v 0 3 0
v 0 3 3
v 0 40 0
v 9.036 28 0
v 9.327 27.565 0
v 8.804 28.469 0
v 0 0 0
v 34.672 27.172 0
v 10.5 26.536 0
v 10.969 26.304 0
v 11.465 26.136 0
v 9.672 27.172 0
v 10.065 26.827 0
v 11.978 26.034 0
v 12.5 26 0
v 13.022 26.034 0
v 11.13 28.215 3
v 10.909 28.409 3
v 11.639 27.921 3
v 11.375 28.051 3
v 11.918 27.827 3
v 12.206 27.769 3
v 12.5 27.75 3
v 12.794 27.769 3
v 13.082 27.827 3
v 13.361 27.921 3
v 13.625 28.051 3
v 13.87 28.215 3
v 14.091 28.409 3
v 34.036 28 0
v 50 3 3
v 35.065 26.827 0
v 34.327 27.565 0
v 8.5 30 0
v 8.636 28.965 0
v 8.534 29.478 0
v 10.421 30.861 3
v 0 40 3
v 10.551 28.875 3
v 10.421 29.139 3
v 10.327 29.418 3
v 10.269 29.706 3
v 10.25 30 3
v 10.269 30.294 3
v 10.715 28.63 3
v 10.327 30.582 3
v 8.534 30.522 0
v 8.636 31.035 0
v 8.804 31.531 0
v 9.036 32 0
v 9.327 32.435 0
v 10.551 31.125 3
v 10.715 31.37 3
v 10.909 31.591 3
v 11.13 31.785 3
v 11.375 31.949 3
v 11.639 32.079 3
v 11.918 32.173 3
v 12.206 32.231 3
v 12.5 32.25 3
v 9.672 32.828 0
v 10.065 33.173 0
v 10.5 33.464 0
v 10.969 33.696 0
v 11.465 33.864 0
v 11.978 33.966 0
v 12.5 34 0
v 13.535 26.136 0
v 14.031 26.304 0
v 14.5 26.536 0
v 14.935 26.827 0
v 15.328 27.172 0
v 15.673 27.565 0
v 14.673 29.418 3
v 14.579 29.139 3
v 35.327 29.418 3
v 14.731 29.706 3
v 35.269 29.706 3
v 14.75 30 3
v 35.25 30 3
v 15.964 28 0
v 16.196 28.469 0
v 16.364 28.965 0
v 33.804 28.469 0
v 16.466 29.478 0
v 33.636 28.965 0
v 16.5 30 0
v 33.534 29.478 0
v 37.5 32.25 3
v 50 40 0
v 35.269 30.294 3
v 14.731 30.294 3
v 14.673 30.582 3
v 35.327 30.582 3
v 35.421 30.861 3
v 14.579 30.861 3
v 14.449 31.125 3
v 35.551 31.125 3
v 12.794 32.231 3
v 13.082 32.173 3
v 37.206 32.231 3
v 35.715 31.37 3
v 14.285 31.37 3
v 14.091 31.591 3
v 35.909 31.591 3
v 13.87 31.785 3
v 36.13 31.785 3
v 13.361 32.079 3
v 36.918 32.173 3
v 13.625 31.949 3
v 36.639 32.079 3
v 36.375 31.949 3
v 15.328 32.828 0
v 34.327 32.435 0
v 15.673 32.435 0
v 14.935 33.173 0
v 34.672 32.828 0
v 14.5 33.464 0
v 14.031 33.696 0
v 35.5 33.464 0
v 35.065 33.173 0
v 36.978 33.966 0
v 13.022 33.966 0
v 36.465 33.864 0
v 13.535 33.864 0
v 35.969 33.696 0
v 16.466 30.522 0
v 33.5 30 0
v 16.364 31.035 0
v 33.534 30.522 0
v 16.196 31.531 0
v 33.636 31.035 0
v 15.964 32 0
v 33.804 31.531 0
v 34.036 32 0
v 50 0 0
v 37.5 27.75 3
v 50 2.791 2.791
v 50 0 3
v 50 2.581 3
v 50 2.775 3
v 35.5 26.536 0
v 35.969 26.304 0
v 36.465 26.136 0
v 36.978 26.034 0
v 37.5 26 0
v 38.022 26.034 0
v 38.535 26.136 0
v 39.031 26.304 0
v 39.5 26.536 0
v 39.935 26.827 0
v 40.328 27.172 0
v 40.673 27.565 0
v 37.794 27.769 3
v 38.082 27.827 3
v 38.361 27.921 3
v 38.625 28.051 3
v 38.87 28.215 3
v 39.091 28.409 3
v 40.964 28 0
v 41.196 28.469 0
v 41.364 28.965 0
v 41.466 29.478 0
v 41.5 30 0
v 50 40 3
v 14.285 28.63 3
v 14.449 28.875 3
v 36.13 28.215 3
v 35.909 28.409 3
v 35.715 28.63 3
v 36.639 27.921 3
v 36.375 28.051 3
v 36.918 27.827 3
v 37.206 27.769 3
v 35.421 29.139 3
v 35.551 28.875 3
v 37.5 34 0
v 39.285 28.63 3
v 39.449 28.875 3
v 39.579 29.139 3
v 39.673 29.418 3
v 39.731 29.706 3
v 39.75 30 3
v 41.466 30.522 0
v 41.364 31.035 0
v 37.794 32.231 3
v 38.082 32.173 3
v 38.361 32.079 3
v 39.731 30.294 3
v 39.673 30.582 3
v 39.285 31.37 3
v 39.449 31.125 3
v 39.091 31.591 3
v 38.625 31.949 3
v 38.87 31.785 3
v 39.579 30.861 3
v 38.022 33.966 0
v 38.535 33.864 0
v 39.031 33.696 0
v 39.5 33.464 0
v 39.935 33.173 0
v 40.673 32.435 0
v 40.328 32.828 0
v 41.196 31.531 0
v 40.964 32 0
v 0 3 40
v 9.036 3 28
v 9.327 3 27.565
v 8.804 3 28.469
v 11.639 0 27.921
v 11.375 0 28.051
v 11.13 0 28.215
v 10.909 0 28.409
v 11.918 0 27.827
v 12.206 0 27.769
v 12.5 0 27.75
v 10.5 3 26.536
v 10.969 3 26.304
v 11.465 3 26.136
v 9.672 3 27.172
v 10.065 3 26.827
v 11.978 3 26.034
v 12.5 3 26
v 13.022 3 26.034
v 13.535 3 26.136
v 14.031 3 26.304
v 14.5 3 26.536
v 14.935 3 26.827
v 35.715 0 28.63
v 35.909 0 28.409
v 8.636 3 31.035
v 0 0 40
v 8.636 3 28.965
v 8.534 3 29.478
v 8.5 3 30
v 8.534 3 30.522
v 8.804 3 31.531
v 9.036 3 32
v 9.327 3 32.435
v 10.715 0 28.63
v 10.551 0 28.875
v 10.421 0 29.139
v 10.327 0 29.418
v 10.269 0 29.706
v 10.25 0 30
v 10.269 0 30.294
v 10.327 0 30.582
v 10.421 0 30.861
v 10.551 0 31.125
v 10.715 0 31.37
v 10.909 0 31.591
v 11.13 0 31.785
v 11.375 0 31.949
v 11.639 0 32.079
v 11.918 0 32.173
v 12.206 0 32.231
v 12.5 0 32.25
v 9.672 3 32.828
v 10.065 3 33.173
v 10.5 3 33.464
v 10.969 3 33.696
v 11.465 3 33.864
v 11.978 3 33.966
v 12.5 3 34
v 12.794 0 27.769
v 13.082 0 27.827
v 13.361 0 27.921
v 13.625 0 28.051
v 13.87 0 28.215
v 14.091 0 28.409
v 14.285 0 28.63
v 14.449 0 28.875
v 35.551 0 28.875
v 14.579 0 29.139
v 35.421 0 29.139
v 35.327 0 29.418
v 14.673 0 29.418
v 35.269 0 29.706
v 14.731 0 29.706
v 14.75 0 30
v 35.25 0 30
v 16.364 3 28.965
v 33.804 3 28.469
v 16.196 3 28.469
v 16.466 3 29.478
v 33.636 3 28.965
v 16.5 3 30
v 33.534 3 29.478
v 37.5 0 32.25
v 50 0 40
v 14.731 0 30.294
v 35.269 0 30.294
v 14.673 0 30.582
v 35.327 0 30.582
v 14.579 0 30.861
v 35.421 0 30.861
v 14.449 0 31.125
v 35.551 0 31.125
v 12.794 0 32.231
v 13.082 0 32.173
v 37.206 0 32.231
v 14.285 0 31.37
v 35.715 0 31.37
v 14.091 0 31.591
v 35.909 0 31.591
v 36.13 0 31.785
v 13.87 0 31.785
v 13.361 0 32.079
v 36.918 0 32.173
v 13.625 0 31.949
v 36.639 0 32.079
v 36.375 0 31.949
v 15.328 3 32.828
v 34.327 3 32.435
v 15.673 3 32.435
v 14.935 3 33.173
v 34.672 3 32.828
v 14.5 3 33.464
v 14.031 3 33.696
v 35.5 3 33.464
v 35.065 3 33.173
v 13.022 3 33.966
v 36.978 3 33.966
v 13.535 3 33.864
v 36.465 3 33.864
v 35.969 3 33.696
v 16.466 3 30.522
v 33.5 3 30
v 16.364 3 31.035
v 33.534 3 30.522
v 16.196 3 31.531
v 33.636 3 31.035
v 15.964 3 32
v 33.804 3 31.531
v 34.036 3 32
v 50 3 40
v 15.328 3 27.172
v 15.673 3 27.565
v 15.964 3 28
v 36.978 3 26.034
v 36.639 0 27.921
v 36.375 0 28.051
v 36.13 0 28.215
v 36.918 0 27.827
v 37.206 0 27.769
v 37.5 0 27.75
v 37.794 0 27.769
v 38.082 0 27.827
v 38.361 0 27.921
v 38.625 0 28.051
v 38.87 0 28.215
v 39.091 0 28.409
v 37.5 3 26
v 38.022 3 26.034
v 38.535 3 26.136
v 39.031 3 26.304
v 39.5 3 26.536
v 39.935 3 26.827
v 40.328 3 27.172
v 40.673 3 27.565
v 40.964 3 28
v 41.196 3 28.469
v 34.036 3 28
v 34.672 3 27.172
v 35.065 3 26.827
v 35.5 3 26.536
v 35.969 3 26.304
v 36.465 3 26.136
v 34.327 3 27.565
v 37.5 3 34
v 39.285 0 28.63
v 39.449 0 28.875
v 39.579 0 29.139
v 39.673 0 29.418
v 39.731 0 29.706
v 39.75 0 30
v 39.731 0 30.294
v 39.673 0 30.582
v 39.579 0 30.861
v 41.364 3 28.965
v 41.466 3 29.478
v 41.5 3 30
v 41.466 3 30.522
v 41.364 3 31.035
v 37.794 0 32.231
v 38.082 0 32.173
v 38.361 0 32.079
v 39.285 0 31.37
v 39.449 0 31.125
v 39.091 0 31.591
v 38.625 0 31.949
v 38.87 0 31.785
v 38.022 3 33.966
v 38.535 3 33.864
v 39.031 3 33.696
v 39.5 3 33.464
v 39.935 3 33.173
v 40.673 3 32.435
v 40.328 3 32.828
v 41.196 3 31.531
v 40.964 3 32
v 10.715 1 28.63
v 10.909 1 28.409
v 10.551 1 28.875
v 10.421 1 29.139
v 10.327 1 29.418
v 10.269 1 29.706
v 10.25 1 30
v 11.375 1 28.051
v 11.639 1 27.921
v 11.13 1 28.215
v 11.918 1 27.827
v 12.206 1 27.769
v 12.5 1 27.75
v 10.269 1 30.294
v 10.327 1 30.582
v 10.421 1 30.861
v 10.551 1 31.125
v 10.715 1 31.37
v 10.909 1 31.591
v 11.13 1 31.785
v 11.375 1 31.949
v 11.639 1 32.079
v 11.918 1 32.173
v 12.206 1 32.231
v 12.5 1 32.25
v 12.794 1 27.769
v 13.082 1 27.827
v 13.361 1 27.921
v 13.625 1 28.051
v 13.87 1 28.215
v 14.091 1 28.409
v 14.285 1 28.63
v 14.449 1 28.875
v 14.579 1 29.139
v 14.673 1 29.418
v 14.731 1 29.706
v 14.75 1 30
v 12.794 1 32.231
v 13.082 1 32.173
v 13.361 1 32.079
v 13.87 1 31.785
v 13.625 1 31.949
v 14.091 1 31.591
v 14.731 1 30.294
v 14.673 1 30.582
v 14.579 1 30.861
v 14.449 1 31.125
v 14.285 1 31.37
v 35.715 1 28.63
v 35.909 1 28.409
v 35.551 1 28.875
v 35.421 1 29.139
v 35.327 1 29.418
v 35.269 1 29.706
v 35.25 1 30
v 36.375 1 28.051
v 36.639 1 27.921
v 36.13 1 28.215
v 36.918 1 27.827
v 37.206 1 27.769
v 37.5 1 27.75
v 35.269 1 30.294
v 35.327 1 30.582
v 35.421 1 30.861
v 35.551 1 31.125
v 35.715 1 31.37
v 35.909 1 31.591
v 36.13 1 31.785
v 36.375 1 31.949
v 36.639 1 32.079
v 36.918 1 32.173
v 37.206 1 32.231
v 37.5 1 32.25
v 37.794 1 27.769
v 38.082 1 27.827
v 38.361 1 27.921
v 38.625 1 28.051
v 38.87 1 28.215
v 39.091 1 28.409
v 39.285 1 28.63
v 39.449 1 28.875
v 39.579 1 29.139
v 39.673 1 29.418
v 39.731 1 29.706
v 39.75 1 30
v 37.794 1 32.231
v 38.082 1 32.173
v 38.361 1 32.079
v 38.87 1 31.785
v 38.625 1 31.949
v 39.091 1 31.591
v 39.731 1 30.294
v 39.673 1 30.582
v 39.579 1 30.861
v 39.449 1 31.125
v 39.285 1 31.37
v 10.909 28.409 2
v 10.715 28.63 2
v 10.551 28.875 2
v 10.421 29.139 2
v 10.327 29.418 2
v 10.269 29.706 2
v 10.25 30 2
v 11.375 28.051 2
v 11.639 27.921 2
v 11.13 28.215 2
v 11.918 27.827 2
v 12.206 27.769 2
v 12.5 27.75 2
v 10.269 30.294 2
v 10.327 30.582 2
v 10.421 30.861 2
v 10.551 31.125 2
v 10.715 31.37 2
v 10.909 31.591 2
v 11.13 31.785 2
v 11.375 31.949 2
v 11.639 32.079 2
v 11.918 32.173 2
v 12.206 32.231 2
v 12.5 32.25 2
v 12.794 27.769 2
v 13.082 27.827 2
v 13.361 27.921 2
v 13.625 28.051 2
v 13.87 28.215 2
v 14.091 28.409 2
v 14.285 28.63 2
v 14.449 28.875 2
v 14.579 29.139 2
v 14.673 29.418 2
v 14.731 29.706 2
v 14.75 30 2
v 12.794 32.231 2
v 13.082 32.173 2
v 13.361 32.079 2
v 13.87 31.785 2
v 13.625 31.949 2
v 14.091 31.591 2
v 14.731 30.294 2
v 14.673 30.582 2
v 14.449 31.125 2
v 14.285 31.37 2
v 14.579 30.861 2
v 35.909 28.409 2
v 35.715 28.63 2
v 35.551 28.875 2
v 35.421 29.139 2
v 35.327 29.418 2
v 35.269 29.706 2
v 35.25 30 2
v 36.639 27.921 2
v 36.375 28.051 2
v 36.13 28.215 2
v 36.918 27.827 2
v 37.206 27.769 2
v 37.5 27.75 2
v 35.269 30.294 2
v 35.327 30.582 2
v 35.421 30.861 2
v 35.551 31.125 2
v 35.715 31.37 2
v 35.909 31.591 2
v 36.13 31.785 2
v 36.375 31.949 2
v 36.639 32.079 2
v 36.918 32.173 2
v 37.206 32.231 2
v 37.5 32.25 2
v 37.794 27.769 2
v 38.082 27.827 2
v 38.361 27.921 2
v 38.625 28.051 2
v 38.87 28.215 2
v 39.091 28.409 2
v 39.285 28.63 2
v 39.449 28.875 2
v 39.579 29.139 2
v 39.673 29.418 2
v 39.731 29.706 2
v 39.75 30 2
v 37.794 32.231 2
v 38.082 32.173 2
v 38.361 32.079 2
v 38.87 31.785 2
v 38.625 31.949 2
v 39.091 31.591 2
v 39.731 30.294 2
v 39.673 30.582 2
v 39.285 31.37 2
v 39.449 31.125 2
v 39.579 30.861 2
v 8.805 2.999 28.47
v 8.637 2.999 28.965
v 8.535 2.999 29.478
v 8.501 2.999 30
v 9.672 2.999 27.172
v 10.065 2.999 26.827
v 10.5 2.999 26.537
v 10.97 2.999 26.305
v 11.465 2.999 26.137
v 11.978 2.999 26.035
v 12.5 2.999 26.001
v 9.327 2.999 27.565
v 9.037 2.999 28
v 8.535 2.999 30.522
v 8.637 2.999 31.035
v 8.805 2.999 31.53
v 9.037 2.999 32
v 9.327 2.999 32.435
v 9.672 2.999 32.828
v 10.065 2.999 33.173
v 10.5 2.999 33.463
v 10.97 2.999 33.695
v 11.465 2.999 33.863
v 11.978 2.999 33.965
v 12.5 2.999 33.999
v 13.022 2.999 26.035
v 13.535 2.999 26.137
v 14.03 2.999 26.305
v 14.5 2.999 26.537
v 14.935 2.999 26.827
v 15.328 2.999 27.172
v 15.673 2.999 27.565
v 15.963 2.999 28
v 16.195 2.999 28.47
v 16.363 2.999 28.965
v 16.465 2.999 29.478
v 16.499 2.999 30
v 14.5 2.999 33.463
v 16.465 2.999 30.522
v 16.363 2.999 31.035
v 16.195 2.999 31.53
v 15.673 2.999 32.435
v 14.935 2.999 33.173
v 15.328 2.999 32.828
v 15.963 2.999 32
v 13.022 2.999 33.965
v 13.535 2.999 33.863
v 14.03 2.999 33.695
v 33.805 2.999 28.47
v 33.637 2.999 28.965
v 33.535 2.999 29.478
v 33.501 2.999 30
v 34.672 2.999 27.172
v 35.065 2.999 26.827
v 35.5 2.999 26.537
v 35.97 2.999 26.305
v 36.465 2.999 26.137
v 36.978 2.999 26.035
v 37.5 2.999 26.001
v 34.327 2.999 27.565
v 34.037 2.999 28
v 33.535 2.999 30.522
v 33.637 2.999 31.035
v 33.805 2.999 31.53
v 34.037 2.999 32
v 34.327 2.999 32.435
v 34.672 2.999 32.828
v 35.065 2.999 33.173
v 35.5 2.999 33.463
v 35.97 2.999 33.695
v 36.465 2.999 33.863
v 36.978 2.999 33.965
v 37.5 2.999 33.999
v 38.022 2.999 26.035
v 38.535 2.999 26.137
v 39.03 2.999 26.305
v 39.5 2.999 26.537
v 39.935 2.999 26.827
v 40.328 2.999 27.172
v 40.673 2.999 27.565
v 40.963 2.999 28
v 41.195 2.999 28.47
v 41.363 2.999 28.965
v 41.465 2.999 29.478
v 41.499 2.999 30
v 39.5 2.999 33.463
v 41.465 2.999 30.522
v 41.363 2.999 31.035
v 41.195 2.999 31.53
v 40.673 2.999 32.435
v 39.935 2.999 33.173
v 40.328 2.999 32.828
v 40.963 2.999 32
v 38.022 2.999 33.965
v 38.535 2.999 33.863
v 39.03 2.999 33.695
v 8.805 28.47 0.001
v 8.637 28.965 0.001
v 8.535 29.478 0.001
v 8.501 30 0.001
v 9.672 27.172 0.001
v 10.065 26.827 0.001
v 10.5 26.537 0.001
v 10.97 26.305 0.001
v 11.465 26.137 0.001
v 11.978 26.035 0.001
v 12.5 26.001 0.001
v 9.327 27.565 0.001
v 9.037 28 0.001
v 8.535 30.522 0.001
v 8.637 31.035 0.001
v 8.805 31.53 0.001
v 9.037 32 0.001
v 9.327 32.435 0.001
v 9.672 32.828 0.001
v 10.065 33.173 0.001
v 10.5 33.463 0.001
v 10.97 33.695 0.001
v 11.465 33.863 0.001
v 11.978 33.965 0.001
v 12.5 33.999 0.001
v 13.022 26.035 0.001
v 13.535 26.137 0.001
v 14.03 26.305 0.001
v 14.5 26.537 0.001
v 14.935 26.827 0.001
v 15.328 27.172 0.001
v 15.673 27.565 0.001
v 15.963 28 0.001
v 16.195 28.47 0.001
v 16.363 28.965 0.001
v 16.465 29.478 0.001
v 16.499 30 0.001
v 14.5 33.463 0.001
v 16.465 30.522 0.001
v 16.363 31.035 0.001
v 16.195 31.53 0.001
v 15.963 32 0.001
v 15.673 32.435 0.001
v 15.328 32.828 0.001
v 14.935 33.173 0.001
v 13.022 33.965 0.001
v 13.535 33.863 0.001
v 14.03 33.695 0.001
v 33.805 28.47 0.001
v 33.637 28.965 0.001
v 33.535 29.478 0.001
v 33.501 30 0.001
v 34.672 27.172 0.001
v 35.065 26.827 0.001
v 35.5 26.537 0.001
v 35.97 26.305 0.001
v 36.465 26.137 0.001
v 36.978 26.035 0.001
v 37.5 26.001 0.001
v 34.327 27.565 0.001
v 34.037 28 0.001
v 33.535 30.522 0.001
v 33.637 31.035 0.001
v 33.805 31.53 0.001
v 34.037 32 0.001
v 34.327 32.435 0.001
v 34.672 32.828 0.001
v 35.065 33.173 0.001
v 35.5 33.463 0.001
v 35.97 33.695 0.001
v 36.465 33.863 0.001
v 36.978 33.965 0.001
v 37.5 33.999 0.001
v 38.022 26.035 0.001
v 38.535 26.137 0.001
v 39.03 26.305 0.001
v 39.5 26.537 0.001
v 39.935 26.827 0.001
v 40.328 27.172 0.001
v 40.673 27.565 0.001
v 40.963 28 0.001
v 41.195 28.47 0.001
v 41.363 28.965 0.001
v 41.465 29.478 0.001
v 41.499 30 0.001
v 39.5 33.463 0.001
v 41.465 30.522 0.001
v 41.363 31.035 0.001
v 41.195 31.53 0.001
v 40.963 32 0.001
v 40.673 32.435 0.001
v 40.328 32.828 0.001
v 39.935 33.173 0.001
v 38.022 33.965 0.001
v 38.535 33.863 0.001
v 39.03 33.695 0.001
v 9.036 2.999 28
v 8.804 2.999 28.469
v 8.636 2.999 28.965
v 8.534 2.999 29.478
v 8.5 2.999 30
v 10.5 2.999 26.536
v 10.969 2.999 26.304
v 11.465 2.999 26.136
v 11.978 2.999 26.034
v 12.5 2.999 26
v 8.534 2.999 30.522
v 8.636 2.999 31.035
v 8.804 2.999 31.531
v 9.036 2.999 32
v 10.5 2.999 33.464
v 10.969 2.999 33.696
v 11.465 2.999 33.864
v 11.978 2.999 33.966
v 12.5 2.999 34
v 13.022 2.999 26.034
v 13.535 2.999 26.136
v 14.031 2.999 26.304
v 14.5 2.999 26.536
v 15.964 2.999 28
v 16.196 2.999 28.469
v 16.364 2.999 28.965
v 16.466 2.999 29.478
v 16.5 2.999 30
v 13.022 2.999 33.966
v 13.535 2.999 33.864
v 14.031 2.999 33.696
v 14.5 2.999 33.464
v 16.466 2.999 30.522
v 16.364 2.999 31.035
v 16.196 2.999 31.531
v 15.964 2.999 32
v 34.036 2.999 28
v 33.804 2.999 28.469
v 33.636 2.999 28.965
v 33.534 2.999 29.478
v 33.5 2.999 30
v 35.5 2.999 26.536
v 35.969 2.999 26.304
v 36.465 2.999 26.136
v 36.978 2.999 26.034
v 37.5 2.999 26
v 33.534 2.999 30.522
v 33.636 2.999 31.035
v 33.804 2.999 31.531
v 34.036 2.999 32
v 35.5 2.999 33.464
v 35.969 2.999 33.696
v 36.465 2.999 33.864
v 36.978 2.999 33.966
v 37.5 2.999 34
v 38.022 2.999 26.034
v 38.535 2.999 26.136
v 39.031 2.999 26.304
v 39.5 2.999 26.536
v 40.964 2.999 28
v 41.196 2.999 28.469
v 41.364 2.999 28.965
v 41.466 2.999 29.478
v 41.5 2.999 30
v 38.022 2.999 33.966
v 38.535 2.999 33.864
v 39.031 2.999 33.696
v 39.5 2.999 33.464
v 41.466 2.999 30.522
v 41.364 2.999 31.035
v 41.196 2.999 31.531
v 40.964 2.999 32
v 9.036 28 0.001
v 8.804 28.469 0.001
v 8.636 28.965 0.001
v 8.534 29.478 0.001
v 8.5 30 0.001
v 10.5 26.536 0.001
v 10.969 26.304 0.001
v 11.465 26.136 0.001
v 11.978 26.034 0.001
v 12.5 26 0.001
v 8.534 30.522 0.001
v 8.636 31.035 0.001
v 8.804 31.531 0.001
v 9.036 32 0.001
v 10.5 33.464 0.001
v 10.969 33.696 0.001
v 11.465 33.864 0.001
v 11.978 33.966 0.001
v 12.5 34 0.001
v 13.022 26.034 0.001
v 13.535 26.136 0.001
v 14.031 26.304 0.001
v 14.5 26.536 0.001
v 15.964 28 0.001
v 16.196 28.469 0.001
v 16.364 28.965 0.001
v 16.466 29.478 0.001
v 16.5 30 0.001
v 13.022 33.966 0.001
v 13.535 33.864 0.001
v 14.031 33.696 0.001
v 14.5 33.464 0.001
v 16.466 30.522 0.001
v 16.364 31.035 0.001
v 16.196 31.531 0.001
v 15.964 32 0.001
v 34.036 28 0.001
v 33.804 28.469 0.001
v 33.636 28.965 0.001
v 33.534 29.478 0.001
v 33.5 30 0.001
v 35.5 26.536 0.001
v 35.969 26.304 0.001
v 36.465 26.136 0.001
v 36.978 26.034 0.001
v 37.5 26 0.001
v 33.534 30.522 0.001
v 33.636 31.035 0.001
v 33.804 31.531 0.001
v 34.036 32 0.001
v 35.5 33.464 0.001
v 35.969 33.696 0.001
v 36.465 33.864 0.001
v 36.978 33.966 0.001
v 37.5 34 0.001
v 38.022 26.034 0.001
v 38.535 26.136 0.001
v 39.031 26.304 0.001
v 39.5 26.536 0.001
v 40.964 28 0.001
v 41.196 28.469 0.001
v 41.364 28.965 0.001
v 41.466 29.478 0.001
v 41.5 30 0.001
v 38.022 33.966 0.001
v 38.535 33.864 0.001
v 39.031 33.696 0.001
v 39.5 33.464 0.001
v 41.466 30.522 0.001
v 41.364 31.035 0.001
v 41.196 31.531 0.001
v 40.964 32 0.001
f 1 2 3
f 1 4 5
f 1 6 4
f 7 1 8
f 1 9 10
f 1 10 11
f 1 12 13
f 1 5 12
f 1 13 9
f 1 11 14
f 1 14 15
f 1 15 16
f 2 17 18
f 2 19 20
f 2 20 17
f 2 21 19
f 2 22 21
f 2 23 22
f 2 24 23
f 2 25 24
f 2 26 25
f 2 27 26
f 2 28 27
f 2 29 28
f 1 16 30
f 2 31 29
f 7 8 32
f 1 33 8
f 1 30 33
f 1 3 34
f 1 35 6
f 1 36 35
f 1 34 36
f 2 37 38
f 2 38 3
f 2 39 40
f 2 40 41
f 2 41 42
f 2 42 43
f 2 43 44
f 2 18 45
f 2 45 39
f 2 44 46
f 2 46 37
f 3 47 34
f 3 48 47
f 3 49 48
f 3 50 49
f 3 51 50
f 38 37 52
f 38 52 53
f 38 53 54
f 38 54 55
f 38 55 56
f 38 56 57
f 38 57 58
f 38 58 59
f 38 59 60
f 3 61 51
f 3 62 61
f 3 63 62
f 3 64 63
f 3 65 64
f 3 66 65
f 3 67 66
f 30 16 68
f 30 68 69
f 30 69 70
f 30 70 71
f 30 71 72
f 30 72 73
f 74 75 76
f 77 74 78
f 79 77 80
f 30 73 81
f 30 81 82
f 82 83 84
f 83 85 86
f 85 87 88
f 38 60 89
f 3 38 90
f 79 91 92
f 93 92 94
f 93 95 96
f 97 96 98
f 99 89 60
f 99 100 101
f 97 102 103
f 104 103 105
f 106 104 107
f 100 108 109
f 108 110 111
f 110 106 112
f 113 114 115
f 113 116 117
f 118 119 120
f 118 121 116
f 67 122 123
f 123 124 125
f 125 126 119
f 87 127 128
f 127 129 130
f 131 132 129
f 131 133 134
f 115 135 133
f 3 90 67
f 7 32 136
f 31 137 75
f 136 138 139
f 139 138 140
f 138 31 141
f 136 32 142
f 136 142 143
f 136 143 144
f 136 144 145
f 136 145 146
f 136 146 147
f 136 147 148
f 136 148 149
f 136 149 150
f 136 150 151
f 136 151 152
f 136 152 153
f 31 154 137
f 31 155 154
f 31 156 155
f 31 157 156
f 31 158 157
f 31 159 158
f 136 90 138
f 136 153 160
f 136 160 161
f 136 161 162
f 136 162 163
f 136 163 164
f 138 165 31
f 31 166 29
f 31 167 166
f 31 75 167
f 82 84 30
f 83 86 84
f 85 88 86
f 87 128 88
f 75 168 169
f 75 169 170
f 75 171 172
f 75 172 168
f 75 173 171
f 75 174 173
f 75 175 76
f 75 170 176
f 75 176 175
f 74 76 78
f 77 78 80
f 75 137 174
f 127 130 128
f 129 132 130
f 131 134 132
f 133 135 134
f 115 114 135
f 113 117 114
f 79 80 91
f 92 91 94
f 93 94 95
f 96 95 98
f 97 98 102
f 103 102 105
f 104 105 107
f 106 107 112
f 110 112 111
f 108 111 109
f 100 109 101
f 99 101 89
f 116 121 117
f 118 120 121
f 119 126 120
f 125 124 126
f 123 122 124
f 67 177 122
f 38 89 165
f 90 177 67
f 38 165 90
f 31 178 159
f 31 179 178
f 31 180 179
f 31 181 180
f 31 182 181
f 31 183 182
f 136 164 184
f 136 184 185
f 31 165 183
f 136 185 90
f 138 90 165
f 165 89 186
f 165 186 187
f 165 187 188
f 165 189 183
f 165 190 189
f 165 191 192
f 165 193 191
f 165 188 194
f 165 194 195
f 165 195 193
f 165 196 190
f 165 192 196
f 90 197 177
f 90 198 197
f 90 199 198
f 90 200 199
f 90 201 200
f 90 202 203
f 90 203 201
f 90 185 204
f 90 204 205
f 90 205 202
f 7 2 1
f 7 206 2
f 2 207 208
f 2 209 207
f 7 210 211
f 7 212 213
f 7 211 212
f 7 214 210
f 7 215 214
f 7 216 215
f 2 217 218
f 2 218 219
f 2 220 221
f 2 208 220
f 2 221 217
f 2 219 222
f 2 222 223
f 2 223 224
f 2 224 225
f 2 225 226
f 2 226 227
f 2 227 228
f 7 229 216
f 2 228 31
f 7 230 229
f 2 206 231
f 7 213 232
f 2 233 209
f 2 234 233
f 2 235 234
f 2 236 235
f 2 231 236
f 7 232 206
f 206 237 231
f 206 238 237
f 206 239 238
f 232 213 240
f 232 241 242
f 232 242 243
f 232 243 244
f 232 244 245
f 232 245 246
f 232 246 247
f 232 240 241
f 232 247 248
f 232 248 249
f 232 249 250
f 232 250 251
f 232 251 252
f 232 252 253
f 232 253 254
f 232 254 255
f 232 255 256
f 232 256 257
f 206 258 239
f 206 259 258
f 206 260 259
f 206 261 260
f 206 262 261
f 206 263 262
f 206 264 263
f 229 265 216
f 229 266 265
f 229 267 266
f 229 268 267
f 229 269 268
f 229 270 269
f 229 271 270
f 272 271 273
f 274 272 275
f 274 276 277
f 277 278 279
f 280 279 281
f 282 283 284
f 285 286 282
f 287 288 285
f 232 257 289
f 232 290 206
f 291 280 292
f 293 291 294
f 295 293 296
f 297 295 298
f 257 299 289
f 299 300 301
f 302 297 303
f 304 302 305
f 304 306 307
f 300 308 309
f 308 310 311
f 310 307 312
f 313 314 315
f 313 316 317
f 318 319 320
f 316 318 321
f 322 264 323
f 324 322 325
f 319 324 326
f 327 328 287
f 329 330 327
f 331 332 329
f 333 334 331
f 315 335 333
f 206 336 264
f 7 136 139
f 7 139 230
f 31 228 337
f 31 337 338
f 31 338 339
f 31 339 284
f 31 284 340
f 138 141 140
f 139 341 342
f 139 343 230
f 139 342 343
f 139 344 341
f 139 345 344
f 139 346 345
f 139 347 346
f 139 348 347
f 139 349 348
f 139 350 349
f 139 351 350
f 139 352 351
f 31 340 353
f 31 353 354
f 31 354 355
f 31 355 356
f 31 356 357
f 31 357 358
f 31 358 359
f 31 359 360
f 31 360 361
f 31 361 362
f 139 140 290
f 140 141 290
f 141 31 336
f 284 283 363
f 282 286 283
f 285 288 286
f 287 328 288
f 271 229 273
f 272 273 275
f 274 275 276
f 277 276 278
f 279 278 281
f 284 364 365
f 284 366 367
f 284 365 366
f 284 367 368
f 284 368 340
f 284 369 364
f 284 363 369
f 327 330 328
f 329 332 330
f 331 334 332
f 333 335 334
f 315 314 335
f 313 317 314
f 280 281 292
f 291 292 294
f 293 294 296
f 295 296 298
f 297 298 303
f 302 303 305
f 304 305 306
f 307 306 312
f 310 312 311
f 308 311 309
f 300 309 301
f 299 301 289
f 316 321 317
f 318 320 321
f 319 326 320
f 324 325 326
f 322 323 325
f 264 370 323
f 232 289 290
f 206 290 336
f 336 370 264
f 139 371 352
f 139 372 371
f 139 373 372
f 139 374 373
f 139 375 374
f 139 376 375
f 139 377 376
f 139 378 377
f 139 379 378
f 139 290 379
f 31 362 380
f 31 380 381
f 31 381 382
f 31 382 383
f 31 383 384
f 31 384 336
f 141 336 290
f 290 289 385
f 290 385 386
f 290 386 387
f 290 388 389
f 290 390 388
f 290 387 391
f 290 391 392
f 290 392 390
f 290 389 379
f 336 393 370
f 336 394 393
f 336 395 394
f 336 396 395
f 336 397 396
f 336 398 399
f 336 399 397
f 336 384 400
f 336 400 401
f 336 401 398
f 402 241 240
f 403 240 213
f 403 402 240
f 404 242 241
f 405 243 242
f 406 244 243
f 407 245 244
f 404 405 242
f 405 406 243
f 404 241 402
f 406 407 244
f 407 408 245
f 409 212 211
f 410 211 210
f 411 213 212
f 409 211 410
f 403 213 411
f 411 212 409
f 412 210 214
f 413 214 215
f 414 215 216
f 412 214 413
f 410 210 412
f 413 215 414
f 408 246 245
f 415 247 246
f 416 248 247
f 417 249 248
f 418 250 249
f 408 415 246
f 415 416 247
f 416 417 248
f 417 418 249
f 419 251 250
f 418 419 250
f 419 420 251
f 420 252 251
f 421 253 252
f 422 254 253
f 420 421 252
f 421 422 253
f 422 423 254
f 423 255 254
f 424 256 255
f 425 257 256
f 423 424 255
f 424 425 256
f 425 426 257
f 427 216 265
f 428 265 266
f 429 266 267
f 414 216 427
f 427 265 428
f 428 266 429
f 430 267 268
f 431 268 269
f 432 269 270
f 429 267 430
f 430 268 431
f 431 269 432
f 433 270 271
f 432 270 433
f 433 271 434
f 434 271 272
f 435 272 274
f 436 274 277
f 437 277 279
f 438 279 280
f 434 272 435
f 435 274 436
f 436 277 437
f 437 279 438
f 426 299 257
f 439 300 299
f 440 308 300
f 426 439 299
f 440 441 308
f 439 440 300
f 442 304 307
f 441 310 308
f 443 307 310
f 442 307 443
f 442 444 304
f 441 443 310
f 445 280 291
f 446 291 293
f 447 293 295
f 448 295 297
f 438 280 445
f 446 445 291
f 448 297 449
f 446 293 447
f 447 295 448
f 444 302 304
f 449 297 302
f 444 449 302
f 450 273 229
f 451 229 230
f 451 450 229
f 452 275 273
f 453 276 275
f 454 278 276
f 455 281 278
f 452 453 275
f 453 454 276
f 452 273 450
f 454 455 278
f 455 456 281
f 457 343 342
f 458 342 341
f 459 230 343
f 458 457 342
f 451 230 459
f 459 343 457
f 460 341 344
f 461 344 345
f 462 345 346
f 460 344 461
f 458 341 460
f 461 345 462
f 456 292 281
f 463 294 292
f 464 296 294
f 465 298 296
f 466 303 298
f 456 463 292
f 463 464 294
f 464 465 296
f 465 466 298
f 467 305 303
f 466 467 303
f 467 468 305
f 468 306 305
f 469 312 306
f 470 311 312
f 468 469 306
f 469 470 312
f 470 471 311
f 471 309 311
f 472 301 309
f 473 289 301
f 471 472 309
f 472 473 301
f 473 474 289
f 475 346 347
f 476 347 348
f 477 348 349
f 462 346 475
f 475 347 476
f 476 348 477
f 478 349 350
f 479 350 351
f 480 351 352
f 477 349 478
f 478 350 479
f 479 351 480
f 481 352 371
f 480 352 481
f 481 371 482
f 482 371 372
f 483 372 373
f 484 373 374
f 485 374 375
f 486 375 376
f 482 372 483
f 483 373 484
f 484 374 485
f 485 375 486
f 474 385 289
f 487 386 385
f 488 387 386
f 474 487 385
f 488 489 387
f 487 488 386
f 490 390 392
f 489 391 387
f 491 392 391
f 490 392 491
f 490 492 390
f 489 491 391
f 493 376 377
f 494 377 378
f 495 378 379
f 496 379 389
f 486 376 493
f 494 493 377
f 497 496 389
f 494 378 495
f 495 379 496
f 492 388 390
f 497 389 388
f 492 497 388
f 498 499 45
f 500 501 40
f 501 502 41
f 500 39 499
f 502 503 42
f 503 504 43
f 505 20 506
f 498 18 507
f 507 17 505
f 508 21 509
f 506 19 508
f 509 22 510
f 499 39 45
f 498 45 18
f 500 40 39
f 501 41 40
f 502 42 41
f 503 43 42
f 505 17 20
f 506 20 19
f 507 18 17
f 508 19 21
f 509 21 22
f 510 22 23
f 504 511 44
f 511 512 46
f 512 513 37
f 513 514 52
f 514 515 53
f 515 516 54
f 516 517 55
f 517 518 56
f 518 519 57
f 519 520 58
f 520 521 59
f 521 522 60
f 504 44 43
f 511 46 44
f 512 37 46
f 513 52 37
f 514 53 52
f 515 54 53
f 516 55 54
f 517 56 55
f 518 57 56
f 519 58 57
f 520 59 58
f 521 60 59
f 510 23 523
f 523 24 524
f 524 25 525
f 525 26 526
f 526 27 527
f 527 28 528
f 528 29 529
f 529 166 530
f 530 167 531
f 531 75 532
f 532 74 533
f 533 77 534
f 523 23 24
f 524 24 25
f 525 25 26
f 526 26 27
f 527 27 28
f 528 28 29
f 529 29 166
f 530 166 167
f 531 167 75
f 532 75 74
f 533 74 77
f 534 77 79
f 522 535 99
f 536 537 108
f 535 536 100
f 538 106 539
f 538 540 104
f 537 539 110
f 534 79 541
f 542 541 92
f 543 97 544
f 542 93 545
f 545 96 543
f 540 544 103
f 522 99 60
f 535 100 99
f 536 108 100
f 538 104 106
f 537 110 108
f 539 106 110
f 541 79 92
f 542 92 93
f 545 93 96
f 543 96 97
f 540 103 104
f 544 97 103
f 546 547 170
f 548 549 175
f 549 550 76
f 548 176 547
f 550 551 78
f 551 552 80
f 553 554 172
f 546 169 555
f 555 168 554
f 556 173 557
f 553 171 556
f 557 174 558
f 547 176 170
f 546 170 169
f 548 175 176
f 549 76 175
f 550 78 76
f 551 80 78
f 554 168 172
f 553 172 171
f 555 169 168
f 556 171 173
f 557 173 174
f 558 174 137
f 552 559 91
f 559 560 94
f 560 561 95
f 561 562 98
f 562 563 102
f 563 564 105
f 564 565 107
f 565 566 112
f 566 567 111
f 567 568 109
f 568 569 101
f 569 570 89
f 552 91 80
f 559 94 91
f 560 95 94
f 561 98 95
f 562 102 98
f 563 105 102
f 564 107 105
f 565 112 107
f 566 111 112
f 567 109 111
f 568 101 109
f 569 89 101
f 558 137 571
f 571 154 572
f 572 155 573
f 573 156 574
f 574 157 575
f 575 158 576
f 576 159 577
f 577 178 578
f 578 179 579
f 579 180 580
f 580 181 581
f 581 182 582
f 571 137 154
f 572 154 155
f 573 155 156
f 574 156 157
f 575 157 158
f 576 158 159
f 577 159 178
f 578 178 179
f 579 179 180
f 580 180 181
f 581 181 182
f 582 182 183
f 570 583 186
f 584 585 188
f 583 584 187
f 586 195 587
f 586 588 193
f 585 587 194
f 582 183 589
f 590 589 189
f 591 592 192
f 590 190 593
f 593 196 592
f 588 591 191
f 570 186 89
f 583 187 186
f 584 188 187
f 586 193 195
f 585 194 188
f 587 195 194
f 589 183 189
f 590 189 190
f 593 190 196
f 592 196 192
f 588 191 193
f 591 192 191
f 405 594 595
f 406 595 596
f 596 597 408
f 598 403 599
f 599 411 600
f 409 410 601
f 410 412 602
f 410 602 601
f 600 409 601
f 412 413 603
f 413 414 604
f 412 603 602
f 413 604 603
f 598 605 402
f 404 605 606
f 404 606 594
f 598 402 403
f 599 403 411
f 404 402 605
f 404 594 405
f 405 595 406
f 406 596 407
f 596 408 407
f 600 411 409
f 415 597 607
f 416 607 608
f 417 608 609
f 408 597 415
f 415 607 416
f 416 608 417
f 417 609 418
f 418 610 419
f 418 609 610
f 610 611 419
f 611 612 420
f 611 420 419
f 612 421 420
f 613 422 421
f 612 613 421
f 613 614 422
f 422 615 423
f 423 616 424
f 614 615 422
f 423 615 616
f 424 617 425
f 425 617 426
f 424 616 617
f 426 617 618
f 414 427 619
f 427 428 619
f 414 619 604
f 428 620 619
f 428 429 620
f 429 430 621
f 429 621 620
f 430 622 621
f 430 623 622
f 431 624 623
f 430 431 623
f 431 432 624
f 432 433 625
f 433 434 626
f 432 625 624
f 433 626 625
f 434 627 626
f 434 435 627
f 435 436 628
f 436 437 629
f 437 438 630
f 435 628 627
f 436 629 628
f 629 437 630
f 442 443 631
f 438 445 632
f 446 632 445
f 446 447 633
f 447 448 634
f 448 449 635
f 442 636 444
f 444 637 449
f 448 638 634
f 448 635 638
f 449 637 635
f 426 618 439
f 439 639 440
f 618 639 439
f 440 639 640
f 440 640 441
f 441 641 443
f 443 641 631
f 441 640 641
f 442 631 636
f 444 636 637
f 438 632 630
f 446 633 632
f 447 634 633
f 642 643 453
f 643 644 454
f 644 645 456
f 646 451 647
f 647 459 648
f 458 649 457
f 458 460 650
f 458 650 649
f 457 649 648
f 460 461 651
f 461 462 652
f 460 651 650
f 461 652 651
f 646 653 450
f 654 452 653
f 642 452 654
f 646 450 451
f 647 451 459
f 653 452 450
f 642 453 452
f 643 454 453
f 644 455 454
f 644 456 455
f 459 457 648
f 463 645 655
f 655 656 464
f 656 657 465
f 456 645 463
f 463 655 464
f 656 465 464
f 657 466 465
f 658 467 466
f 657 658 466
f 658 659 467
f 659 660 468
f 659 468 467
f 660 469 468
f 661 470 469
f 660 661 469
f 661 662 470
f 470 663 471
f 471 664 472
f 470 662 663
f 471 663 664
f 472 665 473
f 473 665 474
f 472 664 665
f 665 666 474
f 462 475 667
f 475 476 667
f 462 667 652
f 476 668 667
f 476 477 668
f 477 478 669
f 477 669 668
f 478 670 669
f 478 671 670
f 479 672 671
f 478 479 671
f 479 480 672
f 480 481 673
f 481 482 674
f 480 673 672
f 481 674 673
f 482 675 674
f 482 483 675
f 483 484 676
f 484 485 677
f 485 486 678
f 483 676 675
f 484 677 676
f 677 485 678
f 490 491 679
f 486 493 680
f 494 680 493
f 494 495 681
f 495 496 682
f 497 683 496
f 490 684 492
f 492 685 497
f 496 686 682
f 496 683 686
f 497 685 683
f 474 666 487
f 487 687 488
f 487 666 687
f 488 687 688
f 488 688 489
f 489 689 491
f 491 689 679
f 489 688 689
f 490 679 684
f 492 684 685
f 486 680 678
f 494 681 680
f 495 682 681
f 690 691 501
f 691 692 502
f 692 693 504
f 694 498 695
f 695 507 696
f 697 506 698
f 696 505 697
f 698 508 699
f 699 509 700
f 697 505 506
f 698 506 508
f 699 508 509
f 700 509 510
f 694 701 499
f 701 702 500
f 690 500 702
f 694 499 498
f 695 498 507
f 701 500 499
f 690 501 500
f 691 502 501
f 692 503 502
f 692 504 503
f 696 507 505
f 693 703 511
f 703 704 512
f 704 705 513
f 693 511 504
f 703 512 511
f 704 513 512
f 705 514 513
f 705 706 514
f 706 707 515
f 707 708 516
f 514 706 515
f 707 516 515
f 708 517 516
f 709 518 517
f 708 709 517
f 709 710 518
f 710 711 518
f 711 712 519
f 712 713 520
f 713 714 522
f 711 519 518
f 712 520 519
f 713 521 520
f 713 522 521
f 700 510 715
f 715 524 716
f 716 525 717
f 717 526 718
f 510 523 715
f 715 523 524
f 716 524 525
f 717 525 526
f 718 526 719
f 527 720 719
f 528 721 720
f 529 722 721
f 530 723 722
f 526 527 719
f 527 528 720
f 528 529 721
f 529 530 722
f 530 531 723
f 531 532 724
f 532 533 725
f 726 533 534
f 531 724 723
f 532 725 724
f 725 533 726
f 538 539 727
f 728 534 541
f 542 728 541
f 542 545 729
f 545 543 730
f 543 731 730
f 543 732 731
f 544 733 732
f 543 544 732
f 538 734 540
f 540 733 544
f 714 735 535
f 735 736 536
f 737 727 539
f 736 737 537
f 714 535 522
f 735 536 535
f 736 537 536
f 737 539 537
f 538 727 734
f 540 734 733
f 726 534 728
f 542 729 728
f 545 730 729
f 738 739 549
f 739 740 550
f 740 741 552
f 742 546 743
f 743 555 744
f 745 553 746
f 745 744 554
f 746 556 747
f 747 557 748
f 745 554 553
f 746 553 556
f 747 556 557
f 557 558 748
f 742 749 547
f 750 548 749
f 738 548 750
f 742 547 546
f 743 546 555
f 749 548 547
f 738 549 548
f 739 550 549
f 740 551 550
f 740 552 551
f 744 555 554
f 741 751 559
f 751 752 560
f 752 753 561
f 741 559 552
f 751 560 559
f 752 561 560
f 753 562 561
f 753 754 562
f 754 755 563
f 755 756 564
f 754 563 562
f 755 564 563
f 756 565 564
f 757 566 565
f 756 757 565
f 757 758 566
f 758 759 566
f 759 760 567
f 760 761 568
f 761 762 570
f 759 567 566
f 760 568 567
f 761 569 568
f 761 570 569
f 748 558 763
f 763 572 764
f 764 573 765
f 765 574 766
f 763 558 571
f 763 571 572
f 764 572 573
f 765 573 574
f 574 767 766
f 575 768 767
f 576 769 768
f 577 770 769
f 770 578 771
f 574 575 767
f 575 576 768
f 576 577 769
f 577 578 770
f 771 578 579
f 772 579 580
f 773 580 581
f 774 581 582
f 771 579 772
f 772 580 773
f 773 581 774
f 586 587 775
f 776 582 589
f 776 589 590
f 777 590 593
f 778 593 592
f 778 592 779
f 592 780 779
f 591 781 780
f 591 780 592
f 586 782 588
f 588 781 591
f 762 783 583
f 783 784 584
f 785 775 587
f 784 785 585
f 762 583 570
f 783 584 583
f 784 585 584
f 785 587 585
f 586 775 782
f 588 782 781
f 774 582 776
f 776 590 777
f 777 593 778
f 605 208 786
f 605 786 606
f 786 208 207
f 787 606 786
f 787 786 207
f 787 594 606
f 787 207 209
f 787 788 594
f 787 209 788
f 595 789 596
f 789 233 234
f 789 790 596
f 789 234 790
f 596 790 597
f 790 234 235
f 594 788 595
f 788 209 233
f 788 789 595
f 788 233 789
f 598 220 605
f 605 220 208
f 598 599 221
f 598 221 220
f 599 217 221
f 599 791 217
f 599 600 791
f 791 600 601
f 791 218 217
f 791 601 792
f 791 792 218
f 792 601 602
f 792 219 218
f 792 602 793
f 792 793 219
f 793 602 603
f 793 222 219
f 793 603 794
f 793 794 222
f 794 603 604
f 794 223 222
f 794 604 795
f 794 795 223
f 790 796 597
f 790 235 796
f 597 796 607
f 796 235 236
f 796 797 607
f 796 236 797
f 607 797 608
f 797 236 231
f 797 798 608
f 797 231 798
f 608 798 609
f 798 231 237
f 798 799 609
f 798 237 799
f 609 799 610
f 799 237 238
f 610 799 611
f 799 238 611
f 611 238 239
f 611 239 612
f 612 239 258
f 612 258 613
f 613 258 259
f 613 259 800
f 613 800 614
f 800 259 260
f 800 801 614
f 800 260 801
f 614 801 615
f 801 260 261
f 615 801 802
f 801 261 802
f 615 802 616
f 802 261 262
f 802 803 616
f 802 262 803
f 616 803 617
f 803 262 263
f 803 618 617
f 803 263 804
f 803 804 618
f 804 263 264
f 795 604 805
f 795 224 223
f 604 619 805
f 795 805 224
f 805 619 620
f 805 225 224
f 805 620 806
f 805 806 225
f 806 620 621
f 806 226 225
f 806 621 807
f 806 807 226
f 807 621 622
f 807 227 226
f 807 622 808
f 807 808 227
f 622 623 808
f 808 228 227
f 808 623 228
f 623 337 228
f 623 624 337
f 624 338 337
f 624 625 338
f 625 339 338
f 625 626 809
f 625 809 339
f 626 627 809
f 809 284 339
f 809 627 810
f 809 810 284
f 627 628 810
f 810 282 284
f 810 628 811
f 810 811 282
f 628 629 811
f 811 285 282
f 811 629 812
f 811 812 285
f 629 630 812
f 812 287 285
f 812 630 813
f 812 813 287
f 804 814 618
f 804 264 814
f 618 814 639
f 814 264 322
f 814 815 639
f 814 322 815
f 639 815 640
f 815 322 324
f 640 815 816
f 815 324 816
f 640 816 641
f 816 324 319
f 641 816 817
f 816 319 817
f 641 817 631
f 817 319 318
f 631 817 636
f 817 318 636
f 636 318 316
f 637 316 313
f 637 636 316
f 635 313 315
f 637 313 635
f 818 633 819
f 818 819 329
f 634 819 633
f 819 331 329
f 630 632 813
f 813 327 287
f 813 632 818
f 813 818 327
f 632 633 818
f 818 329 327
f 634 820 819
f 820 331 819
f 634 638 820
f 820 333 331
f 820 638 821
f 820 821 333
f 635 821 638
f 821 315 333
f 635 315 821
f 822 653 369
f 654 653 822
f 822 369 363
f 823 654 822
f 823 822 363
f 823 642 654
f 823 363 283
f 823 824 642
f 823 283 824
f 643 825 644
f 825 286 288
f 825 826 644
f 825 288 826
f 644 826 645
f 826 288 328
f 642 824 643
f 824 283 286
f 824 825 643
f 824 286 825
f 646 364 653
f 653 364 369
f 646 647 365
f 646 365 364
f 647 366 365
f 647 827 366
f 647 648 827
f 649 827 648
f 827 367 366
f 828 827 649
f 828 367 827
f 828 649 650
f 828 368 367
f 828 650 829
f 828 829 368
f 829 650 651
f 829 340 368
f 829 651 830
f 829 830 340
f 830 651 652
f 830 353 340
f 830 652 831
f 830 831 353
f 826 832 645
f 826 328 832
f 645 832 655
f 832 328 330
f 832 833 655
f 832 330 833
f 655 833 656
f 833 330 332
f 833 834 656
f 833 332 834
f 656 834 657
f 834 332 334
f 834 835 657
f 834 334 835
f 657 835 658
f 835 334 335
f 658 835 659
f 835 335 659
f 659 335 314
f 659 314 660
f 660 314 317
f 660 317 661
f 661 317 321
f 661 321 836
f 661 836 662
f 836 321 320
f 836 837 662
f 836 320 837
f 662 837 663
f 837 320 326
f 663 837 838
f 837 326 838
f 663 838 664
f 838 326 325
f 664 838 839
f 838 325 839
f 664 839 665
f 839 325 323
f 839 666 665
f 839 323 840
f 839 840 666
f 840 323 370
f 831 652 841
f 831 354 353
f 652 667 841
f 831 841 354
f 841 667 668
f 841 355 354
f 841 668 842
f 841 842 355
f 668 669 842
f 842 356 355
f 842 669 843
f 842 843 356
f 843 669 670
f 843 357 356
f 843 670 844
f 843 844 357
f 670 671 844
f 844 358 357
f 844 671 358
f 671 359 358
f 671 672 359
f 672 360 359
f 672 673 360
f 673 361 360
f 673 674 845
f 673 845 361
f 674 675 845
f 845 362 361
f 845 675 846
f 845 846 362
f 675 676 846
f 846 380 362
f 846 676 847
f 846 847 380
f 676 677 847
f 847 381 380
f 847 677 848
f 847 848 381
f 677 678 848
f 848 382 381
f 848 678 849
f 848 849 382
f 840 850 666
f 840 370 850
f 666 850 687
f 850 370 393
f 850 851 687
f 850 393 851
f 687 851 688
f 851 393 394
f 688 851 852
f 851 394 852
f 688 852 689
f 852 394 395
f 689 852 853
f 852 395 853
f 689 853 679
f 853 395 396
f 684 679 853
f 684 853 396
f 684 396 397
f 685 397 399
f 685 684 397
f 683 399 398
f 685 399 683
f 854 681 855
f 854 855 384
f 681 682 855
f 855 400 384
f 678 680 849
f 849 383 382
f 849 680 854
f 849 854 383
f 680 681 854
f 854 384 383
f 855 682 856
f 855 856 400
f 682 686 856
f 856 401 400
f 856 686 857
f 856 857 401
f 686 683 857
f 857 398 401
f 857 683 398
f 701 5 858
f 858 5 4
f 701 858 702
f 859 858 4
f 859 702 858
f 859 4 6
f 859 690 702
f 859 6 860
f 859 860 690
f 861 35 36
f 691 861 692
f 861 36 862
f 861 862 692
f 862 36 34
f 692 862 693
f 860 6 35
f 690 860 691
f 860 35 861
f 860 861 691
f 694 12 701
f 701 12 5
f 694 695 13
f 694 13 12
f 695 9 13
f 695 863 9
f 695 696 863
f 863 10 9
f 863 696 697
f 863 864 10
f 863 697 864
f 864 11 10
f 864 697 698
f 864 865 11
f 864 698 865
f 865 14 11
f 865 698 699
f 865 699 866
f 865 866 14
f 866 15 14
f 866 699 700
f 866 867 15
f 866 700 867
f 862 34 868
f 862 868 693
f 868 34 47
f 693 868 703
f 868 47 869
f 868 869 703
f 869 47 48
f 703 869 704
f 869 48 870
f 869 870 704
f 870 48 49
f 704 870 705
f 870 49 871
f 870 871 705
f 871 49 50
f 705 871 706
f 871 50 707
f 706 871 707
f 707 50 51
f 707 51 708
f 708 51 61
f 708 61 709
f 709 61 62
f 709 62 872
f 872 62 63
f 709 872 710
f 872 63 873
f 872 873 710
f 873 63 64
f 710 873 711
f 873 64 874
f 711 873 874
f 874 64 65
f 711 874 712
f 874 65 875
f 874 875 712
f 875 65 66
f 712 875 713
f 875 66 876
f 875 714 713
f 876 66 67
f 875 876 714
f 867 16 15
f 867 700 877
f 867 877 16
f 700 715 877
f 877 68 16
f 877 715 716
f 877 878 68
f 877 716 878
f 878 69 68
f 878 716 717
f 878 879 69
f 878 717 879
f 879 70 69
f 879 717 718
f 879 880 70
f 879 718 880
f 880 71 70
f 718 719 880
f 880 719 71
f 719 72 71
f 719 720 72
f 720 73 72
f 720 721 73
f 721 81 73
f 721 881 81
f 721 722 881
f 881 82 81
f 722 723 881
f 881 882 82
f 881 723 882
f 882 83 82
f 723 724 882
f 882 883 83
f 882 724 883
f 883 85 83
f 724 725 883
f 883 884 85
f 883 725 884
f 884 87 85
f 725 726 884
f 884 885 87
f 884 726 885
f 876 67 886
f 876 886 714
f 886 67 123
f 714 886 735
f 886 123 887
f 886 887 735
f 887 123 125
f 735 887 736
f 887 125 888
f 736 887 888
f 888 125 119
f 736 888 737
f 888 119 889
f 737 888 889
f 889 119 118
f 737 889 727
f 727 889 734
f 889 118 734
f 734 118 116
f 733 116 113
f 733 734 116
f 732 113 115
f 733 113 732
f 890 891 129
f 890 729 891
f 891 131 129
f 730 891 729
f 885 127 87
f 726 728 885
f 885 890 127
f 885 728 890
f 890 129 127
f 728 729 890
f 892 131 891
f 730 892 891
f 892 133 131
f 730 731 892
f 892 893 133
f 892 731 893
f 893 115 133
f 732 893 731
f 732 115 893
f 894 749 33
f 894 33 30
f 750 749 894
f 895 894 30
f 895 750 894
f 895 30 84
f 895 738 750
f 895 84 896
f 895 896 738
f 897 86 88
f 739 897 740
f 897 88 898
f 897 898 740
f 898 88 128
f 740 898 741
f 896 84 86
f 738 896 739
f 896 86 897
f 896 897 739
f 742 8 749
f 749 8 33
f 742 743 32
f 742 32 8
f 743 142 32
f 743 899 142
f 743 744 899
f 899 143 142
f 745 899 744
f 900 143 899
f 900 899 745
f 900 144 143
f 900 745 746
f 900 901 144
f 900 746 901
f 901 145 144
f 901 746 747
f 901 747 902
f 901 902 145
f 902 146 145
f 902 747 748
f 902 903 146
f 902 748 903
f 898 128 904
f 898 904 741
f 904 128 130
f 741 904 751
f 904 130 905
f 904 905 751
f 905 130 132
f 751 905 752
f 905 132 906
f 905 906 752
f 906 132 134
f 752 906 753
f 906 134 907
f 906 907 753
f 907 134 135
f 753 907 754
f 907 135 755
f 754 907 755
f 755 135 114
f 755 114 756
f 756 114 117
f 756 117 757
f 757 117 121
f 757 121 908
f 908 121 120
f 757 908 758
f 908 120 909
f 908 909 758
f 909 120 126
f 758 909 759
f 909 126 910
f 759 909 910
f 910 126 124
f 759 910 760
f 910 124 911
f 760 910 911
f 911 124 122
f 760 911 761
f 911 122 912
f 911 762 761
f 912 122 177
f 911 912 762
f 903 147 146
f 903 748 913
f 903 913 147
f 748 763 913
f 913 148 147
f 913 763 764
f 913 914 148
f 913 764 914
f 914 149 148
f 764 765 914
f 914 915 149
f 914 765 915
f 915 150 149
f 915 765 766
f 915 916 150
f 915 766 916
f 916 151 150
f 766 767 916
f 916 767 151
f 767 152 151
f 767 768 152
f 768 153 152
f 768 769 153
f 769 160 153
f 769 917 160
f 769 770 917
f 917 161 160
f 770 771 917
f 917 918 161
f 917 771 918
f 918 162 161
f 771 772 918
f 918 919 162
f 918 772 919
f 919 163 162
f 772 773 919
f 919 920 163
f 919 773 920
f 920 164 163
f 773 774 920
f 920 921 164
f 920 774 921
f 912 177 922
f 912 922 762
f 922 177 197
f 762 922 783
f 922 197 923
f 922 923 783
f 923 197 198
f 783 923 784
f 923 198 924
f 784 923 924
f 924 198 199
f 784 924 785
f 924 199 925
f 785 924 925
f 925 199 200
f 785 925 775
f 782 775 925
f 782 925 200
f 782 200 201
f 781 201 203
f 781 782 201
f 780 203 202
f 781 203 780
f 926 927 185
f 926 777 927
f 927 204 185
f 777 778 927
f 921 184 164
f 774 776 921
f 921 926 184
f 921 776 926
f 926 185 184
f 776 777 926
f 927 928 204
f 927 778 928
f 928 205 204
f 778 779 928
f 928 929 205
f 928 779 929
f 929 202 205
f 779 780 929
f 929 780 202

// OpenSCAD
// L-bracket with countersunk holes

// パラメータ
width      = 50;   // 幅 (X方向)
depth      = 40;   // 水平面の奥行き / 垂直面の高さ
thickness  = 3;    // 板厚

hole_d     = 4.5;  // 貫通穴径 M4
cs_d       = 8;    // 皿座面径
cs_depth   = 2;    // 皿座面深さ
edge_off   = 10;   // 面の縁からの距離

// 穴中心のX座標（面の中心線X=25に対して左右対称）
x1 = width/2 - 12.5;   // 12.5
x2 = width/2 + 12.5;   // 37.5

// 皿穴モジュール（+Z方向に貫通、上面=外側に円錐の皿座）
module countersunk_hole(plate_thickness) {
    // 貫通穴
    translate([0, 0, -1])
        cylinder(h = plate_thickness + 2, d = hole_d, $fn = 48);
    // 皿座（円錐テーパー、上面=外側に向け広がる）
    translate([0, 0, plate_thickness - cs_depth])
        cylinder(h = cs_depth, d1 = hole_d, d2 = cs_d, $fn = 48);
    // 念のため外側を少し抜く
    translate([0, 0, plate_thickness - 0.001])
        cylinder(h = 1, d = cs_d, $fn = 48);
}

module l_bracket() {
    difference() {
        union() {
            // 水平面 (+Y方向に伸びる)
            cube([width, depth, thickness]);
            // 垂直面 (+Z方向に伸びる)
            cube([width, thickness, depth]);
        }

        // --- 水平面の皿穴 (外側 = -Z 側) ---
        // Y位置: 縁(Y=depth)から10mm内側 -> Y = depth - edge_off
        for (x = [x1, x2]) {
            translate([x, depth - edge_off, thickness])
                rotate([180, 0, 0])
                    countersunk_hole(thickness);
        }

        // --- 垂直面の皿穴 (外側 = -Y 側) ---
        // Z位置: 縁(Z=depth)から10mm内側 -> Z = depth - edge_off
        // 板のローカル+Z軸が外側(-Y方向)を向くように配置
        for (x = [x1, x2]) {
            translate([x, 0, depth - edge_off])
                rotate([-90, 0, 0])
                    countersunk_hole(thickness);
        }
    }
}

l_bracket();
